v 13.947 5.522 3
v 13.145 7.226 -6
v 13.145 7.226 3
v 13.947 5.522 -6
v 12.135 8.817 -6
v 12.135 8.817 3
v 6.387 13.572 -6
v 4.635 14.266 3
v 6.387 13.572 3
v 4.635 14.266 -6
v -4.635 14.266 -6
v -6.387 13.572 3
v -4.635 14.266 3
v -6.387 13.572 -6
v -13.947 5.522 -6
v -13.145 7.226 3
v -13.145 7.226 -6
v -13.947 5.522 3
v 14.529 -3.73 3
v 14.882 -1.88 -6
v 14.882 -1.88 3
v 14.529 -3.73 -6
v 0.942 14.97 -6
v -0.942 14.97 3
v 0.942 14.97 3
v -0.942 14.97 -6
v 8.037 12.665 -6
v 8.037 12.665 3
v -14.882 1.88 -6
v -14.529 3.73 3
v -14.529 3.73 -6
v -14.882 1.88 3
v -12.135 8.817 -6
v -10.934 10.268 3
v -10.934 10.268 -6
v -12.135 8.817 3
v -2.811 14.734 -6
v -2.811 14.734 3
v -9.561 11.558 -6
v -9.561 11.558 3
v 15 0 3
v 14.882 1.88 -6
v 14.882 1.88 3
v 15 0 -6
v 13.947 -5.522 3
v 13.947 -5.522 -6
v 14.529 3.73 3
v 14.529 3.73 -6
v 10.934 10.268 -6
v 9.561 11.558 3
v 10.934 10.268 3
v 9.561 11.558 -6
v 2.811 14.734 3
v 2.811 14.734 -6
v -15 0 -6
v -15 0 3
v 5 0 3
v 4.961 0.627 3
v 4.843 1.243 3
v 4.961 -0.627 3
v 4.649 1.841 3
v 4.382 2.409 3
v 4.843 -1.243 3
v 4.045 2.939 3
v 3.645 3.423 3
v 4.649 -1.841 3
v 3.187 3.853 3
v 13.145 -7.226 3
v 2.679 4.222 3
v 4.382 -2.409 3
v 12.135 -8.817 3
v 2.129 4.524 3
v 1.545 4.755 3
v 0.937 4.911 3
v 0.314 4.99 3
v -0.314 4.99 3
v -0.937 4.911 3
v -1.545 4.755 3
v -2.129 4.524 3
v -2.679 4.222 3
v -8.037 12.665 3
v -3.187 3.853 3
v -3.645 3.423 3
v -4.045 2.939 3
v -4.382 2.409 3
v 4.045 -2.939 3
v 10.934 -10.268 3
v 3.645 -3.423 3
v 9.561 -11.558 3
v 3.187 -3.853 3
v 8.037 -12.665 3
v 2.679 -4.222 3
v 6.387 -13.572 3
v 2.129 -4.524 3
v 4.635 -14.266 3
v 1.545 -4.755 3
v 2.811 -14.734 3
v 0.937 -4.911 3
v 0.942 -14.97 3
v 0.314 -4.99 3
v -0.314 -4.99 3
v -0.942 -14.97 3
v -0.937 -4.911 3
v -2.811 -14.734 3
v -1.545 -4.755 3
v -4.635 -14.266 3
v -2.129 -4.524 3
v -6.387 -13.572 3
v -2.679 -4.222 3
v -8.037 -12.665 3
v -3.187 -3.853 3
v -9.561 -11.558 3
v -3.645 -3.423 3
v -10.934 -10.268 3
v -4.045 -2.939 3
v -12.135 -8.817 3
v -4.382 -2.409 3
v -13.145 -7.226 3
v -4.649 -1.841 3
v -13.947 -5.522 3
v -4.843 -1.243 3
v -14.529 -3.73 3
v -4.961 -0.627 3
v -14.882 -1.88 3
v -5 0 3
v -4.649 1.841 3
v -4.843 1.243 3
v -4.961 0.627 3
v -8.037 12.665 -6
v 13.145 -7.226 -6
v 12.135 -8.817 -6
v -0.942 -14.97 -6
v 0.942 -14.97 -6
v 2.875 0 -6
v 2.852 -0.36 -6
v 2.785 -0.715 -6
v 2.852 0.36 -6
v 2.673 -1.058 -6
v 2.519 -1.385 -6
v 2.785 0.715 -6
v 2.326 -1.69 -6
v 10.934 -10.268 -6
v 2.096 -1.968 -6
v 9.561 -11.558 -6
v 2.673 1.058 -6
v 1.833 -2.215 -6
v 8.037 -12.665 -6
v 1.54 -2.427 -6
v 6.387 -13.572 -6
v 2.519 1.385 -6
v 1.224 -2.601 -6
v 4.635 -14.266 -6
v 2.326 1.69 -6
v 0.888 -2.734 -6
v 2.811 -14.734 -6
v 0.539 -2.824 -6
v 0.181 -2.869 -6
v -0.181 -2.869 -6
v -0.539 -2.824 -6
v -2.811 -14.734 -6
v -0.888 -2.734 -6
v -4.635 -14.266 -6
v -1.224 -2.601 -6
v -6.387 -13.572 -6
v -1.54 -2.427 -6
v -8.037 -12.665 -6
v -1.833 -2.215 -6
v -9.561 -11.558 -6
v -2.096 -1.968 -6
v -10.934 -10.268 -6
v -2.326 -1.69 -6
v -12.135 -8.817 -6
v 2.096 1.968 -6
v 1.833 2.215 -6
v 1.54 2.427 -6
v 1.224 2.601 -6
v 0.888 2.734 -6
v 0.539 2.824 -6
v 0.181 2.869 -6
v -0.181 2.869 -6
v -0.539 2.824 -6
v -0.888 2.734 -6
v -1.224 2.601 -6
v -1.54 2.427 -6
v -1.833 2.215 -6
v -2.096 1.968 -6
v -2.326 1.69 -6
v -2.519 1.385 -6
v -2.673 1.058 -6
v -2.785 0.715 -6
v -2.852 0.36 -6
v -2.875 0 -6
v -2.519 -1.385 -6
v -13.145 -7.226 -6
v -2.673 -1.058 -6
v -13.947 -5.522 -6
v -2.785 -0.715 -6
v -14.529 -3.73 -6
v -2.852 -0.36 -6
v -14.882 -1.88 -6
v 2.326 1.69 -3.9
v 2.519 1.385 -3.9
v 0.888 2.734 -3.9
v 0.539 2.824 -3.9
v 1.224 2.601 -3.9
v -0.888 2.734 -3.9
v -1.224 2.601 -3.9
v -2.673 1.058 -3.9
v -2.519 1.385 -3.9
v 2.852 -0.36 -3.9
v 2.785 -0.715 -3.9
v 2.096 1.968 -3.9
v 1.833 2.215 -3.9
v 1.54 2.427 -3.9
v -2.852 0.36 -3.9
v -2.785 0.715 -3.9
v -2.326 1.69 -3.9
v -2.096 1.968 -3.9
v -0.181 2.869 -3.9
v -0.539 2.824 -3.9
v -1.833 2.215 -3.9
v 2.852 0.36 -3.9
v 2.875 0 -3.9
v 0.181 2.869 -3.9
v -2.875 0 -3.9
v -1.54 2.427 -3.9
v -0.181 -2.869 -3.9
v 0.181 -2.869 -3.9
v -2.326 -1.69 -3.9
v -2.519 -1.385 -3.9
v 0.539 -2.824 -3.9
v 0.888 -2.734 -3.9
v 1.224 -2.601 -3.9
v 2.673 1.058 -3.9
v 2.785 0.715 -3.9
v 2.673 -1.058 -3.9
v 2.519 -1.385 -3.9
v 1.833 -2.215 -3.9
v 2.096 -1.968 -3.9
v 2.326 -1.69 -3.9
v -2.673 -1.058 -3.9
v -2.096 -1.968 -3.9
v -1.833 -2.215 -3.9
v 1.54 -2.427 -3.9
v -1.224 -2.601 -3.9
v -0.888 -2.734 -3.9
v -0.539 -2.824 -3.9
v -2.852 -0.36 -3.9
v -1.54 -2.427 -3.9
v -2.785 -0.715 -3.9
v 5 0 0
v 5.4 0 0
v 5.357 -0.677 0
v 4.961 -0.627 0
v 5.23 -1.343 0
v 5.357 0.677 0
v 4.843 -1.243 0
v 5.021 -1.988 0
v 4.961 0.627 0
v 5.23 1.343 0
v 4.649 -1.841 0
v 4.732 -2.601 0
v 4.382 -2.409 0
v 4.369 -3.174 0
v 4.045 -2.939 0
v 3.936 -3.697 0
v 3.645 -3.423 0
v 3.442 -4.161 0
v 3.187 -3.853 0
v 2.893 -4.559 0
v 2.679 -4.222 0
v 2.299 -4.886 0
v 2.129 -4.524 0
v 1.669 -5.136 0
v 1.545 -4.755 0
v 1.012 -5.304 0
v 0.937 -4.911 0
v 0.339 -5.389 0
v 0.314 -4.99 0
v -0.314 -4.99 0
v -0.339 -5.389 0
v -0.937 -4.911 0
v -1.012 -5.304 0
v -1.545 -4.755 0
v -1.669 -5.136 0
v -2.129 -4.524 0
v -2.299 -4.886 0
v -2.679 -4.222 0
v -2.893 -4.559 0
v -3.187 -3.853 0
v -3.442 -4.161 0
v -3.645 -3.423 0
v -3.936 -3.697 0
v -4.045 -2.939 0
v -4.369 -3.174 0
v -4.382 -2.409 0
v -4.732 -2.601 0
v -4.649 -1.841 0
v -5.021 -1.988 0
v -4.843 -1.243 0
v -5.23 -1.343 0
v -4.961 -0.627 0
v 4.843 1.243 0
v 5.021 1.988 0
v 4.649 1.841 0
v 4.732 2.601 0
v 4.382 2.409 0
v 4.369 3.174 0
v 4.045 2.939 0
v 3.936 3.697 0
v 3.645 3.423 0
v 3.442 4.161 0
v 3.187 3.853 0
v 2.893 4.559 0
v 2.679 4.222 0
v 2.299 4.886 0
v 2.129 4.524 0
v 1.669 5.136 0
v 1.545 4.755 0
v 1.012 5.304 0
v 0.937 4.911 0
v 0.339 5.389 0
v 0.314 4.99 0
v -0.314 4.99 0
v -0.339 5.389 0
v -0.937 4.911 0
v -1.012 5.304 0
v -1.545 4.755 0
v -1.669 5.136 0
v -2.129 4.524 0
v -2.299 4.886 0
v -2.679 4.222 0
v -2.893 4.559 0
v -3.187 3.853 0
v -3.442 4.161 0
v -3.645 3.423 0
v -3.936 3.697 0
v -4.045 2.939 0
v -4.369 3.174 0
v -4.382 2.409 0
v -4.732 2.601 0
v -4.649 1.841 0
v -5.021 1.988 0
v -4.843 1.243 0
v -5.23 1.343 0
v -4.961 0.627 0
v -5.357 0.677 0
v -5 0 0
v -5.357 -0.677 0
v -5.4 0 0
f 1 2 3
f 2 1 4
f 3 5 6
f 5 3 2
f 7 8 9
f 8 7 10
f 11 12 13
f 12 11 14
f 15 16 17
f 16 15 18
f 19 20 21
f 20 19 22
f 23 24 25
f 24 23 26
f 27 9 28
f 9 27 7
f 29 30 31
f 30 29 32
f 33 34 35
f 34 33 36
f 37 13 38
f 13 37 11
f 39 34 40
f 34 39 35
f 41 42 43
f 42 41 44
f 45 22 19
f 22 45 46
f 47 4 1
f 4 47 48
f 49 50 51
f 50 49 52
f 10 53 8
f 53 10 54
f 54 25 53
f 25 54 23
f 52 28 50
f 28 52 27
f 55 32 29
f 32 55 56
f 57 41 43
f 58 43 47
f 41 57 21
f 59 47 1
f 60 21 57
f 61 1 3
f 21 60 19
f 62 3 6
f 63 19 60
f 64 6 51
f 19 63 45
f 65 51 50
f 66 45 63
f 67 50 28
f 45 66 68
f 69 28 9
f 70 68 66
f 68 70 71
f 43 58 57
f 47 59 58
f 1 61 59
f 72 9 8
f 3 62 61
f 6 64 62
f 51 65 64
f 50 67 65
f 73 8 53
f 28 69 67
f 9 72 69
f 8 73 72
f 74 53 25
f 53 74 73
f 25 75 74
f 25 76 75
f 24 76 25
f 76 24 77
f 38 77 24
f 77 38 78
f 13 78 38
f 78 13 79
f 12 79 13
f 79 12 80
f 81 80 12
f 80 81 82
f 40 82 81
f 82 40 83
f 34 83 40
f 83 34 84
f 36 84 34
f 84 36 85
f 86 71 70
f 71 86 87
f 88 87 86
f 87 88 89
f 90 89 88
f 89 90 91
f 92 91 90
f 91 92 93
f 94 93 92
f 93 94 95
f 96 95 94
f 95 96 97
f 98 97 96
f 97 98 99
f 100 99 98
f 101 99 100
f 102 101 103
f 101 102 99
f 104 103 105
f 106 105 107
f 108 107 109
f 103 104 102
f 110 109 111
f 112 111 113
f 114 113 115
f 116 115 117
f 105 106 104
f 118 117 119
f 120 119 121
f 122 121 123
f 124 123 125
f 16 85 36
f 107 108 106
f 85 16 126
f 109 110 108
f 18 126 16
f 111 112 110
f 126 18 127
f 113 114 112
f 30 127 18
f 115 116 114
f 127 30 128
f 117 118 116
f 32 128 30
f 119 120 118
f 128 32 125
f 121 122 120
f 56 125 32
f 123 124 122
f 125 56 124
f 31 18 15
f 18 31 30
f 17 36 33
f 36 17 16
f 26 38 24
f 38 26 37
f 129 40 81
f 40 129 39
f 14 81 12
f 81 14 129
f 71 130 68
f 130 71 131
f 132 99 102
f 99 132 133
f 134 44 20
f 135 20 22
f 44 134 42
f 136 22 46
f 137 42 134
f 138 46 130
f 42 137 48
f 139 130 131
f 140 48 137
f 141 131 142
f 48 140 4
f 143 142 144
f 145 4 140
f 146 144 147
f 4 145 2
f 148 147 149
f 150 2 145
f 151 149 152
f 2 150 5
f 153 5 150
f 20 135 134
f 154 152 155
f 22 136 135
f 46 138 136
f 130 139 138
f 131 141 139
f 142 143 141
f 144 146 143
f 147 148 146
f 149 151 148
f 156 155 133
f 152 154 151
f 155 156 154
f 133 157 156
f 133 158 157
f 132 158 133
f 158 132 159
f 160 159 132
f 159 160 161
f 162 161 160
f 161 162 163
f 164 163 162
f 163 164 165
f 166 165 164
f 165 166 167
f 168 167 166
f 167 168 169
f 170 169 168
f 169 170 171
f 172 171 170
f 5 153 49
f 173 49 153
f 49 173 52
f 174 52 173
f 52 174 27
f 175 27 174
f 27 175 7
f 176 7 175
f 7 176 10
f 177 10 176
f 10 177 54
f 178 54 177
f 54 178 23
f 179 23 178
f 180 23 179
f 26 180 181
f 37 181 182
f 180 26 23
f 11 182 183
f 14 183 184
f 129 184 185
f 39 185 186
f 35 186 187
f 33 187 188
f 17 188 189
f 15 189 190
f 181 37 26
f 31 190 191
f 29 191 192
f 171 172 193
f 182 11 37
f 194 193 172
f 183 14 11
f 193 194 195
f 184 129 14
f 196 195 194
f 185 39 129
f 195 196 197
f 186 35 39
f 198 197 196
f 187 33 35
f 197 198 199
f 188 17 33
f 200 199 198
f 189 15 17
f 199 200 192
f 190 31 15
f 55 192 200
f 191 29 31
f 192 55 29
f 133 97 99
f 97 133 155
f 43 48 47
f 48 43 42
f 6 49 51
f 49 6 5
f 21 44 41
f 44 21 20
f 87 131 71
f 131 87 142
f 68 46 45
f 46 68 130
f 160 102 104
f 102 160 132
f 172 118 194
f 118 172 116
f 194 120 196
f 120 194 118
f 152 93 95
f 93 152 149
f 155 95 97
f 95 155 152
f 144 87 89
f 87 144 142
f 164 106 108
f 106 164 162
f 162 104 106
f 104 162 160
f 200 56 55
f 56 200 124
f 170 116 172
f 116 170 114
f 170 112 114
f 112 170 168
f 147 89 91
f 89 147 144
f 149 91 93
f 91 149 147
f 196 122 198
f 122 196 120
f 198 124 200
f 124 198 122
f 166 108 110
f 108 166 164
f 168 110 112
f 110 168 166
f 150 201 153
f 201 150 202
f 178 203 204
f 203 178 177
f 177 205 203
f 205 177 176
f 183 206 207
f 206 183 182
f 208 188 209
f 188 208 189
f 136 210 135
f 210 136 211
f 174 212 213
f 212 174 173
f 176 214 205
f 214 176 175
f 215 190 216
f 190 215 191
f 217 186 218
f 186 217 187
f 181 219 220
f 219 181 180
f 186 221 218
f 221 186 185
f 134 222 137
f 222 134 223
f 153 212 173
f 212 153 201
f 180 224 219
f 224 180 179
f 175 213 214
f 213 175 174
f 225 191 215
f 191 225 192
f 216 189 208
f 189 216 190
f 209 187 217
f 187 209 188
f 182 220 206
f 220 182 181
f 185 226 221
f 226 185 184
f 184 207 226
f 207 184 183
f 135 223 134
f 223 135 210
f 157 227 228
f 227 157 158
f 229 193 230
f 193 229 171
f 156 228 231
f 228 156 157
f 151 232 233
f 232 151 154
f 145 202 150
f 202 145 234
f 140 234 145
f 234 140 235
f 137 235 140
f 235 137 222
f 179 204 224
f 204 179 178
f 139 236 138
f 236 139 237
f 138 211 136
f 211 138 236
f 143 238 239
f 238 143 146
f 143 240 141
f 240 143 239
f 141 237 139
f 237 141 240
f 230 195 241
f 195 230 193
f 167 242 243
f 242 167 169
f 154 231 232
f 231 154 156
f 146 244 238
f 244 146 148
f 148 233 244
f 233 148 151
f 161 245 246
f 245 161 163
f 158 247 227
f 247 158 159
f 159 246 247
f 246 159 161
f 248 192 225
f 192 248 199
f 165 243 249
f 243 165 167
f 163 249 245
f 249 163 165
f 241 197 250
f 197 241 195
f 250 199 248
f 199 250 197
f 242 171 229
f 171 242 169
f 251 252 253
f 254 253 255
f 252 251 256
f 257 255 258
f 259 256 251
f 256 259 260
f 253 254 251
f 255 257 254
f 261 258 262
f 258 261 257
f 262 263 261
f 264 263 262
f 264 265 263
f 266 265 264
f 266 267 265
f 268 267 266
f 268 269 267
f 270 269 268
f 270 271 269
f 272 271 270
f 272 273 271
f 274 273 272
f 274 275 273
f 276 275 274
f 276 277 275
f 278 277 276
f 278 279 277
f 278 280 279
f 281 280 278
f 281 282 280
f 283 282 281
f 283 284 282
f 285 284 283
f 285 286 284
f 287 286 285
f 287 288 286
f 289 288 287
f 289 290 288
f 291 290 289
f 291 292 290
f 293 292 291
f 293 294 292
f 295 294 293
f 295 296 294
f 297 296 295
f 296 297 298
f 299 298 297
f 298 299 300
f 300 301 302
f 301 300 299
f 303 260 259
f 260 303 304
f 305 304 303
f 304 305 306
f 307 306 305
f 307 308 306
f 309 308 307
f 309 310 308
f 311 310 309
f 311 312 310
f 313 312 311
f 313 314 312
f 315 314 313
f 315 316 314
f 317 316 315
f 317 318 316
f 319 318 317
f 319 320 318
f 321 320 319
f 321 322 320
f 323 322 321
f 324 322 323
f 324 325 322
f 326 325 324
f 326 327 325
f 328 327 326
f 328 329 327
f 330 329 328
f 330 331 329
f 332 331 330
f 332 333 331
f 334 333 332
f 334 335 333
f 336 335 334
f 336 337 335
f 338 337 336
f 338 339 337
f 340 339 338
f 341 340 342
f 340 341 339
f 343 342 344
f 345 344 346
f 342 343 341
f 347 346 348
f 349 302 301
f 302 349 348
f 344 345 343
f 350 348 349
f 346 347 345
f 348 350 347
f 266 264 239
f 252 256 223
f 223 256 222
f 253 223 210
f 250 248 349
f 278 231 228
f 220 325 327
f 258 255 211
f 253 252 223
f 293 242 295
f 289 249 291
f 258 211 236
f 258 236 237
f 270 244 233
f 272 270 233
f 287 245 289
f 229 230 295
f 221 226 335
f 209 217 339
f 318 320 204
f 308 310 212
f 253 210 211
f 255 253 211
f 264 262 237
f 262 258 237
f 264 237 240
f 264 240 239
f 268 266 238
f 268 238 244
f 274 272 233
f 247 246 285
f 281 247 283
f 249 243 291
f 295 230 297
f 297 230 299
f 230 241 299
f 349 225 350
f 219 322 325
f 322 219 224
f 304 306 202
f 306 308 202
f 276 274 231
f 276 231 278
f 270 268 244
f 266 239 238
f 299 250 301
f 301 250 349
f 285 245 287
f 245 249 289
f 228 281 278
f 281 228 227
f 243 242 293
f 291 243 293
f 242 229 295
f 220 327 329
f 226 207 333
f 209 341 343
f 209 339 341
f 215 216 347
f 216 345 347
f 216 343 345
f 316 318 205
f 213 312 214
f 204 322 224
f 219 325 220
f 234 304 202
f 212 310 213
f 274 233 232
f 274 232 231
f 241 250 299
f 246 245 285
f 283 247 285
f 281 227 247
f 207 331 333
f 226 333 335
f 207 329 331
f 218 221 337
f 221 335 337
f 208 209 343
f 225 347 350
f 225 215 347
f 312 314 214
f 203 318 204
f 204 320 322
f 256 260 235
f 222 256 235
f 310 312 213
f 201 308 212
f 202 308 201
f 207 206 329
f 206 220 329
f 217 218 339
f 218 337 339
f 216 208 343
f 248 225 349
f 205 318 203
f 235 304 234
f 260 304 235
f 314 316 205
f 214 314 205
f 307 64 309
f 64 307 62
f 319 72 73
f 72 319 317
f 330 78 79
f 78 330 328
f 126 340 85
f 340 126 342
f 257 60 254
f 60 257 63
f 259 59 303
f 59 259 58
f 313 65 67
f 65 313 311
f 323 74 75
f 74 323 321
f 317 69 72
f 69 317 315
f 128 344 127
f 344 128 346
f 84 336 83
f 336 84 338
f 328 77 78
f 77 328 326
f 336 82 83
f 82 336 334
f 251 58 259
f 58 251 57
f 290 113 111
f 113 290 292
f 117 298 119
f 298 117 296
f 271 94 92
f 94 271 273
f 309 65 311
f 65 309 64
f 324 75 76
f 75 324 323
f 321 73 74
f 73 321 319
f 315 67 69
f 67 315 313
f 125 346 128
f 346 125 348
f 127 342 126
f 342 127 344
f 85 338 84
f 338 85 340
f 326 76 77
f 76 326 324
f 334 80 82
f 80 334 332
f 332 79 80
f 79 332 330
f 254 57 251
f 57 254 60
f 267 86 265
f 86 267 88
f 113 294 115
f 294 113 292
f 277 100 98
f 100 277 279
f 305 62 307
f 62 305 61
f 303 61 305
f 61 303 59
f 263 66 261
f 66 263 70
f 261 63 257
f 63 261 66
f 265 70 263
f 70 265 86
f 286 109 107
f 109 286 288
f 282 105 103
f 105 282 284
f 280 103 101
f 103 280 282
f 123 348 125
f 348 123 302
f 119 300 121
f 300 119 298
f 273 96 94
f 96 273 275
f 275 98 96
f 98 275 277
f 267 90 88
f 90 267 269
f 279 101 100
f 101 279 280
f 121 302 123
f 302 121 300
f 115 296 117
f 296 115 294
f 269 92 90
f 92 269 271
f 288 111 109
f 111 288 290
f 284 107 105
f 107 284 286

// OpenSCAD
$fn = 50;


difference() {
	union() {
		translate(v = [0, 0, -6.0000000000]) {
			cylinder(h = 9, r = 15.0000000000);
		}
		#translate(v = [0, 0, -9.0000000000]) {
			cylinder(h = 9, r = 2.8750000000);
		}
	}
	union() {
		translate(v = [0, 0, 0]) {
			rotate(a = [0, 0, 0]) {
				difference() {
					union() {
						translate(v = [0, 0, -9.0000000000]) {
							cylinder(h = 9, r = 2.6000000000);
						}
						translate(v = [0, 0, -3.9000000000]) {
							cylinder(h = 3.9000000000, r1 = 2.8750000000, r2 = 5.4000000000);
						}
						translate(v = [0, 0, -9.0000000000]) {
							cylinder(h = 9, r = 2.8750000000);
						}
						translate(v = [0, 0, -9.0000000000]) {
							cylinder(h = 9, r = 2.6000000000);
						}
					}
					union();
				}
			}
		}
		#cylinder(h = 3, r = 5.0000000000);
	}
}
